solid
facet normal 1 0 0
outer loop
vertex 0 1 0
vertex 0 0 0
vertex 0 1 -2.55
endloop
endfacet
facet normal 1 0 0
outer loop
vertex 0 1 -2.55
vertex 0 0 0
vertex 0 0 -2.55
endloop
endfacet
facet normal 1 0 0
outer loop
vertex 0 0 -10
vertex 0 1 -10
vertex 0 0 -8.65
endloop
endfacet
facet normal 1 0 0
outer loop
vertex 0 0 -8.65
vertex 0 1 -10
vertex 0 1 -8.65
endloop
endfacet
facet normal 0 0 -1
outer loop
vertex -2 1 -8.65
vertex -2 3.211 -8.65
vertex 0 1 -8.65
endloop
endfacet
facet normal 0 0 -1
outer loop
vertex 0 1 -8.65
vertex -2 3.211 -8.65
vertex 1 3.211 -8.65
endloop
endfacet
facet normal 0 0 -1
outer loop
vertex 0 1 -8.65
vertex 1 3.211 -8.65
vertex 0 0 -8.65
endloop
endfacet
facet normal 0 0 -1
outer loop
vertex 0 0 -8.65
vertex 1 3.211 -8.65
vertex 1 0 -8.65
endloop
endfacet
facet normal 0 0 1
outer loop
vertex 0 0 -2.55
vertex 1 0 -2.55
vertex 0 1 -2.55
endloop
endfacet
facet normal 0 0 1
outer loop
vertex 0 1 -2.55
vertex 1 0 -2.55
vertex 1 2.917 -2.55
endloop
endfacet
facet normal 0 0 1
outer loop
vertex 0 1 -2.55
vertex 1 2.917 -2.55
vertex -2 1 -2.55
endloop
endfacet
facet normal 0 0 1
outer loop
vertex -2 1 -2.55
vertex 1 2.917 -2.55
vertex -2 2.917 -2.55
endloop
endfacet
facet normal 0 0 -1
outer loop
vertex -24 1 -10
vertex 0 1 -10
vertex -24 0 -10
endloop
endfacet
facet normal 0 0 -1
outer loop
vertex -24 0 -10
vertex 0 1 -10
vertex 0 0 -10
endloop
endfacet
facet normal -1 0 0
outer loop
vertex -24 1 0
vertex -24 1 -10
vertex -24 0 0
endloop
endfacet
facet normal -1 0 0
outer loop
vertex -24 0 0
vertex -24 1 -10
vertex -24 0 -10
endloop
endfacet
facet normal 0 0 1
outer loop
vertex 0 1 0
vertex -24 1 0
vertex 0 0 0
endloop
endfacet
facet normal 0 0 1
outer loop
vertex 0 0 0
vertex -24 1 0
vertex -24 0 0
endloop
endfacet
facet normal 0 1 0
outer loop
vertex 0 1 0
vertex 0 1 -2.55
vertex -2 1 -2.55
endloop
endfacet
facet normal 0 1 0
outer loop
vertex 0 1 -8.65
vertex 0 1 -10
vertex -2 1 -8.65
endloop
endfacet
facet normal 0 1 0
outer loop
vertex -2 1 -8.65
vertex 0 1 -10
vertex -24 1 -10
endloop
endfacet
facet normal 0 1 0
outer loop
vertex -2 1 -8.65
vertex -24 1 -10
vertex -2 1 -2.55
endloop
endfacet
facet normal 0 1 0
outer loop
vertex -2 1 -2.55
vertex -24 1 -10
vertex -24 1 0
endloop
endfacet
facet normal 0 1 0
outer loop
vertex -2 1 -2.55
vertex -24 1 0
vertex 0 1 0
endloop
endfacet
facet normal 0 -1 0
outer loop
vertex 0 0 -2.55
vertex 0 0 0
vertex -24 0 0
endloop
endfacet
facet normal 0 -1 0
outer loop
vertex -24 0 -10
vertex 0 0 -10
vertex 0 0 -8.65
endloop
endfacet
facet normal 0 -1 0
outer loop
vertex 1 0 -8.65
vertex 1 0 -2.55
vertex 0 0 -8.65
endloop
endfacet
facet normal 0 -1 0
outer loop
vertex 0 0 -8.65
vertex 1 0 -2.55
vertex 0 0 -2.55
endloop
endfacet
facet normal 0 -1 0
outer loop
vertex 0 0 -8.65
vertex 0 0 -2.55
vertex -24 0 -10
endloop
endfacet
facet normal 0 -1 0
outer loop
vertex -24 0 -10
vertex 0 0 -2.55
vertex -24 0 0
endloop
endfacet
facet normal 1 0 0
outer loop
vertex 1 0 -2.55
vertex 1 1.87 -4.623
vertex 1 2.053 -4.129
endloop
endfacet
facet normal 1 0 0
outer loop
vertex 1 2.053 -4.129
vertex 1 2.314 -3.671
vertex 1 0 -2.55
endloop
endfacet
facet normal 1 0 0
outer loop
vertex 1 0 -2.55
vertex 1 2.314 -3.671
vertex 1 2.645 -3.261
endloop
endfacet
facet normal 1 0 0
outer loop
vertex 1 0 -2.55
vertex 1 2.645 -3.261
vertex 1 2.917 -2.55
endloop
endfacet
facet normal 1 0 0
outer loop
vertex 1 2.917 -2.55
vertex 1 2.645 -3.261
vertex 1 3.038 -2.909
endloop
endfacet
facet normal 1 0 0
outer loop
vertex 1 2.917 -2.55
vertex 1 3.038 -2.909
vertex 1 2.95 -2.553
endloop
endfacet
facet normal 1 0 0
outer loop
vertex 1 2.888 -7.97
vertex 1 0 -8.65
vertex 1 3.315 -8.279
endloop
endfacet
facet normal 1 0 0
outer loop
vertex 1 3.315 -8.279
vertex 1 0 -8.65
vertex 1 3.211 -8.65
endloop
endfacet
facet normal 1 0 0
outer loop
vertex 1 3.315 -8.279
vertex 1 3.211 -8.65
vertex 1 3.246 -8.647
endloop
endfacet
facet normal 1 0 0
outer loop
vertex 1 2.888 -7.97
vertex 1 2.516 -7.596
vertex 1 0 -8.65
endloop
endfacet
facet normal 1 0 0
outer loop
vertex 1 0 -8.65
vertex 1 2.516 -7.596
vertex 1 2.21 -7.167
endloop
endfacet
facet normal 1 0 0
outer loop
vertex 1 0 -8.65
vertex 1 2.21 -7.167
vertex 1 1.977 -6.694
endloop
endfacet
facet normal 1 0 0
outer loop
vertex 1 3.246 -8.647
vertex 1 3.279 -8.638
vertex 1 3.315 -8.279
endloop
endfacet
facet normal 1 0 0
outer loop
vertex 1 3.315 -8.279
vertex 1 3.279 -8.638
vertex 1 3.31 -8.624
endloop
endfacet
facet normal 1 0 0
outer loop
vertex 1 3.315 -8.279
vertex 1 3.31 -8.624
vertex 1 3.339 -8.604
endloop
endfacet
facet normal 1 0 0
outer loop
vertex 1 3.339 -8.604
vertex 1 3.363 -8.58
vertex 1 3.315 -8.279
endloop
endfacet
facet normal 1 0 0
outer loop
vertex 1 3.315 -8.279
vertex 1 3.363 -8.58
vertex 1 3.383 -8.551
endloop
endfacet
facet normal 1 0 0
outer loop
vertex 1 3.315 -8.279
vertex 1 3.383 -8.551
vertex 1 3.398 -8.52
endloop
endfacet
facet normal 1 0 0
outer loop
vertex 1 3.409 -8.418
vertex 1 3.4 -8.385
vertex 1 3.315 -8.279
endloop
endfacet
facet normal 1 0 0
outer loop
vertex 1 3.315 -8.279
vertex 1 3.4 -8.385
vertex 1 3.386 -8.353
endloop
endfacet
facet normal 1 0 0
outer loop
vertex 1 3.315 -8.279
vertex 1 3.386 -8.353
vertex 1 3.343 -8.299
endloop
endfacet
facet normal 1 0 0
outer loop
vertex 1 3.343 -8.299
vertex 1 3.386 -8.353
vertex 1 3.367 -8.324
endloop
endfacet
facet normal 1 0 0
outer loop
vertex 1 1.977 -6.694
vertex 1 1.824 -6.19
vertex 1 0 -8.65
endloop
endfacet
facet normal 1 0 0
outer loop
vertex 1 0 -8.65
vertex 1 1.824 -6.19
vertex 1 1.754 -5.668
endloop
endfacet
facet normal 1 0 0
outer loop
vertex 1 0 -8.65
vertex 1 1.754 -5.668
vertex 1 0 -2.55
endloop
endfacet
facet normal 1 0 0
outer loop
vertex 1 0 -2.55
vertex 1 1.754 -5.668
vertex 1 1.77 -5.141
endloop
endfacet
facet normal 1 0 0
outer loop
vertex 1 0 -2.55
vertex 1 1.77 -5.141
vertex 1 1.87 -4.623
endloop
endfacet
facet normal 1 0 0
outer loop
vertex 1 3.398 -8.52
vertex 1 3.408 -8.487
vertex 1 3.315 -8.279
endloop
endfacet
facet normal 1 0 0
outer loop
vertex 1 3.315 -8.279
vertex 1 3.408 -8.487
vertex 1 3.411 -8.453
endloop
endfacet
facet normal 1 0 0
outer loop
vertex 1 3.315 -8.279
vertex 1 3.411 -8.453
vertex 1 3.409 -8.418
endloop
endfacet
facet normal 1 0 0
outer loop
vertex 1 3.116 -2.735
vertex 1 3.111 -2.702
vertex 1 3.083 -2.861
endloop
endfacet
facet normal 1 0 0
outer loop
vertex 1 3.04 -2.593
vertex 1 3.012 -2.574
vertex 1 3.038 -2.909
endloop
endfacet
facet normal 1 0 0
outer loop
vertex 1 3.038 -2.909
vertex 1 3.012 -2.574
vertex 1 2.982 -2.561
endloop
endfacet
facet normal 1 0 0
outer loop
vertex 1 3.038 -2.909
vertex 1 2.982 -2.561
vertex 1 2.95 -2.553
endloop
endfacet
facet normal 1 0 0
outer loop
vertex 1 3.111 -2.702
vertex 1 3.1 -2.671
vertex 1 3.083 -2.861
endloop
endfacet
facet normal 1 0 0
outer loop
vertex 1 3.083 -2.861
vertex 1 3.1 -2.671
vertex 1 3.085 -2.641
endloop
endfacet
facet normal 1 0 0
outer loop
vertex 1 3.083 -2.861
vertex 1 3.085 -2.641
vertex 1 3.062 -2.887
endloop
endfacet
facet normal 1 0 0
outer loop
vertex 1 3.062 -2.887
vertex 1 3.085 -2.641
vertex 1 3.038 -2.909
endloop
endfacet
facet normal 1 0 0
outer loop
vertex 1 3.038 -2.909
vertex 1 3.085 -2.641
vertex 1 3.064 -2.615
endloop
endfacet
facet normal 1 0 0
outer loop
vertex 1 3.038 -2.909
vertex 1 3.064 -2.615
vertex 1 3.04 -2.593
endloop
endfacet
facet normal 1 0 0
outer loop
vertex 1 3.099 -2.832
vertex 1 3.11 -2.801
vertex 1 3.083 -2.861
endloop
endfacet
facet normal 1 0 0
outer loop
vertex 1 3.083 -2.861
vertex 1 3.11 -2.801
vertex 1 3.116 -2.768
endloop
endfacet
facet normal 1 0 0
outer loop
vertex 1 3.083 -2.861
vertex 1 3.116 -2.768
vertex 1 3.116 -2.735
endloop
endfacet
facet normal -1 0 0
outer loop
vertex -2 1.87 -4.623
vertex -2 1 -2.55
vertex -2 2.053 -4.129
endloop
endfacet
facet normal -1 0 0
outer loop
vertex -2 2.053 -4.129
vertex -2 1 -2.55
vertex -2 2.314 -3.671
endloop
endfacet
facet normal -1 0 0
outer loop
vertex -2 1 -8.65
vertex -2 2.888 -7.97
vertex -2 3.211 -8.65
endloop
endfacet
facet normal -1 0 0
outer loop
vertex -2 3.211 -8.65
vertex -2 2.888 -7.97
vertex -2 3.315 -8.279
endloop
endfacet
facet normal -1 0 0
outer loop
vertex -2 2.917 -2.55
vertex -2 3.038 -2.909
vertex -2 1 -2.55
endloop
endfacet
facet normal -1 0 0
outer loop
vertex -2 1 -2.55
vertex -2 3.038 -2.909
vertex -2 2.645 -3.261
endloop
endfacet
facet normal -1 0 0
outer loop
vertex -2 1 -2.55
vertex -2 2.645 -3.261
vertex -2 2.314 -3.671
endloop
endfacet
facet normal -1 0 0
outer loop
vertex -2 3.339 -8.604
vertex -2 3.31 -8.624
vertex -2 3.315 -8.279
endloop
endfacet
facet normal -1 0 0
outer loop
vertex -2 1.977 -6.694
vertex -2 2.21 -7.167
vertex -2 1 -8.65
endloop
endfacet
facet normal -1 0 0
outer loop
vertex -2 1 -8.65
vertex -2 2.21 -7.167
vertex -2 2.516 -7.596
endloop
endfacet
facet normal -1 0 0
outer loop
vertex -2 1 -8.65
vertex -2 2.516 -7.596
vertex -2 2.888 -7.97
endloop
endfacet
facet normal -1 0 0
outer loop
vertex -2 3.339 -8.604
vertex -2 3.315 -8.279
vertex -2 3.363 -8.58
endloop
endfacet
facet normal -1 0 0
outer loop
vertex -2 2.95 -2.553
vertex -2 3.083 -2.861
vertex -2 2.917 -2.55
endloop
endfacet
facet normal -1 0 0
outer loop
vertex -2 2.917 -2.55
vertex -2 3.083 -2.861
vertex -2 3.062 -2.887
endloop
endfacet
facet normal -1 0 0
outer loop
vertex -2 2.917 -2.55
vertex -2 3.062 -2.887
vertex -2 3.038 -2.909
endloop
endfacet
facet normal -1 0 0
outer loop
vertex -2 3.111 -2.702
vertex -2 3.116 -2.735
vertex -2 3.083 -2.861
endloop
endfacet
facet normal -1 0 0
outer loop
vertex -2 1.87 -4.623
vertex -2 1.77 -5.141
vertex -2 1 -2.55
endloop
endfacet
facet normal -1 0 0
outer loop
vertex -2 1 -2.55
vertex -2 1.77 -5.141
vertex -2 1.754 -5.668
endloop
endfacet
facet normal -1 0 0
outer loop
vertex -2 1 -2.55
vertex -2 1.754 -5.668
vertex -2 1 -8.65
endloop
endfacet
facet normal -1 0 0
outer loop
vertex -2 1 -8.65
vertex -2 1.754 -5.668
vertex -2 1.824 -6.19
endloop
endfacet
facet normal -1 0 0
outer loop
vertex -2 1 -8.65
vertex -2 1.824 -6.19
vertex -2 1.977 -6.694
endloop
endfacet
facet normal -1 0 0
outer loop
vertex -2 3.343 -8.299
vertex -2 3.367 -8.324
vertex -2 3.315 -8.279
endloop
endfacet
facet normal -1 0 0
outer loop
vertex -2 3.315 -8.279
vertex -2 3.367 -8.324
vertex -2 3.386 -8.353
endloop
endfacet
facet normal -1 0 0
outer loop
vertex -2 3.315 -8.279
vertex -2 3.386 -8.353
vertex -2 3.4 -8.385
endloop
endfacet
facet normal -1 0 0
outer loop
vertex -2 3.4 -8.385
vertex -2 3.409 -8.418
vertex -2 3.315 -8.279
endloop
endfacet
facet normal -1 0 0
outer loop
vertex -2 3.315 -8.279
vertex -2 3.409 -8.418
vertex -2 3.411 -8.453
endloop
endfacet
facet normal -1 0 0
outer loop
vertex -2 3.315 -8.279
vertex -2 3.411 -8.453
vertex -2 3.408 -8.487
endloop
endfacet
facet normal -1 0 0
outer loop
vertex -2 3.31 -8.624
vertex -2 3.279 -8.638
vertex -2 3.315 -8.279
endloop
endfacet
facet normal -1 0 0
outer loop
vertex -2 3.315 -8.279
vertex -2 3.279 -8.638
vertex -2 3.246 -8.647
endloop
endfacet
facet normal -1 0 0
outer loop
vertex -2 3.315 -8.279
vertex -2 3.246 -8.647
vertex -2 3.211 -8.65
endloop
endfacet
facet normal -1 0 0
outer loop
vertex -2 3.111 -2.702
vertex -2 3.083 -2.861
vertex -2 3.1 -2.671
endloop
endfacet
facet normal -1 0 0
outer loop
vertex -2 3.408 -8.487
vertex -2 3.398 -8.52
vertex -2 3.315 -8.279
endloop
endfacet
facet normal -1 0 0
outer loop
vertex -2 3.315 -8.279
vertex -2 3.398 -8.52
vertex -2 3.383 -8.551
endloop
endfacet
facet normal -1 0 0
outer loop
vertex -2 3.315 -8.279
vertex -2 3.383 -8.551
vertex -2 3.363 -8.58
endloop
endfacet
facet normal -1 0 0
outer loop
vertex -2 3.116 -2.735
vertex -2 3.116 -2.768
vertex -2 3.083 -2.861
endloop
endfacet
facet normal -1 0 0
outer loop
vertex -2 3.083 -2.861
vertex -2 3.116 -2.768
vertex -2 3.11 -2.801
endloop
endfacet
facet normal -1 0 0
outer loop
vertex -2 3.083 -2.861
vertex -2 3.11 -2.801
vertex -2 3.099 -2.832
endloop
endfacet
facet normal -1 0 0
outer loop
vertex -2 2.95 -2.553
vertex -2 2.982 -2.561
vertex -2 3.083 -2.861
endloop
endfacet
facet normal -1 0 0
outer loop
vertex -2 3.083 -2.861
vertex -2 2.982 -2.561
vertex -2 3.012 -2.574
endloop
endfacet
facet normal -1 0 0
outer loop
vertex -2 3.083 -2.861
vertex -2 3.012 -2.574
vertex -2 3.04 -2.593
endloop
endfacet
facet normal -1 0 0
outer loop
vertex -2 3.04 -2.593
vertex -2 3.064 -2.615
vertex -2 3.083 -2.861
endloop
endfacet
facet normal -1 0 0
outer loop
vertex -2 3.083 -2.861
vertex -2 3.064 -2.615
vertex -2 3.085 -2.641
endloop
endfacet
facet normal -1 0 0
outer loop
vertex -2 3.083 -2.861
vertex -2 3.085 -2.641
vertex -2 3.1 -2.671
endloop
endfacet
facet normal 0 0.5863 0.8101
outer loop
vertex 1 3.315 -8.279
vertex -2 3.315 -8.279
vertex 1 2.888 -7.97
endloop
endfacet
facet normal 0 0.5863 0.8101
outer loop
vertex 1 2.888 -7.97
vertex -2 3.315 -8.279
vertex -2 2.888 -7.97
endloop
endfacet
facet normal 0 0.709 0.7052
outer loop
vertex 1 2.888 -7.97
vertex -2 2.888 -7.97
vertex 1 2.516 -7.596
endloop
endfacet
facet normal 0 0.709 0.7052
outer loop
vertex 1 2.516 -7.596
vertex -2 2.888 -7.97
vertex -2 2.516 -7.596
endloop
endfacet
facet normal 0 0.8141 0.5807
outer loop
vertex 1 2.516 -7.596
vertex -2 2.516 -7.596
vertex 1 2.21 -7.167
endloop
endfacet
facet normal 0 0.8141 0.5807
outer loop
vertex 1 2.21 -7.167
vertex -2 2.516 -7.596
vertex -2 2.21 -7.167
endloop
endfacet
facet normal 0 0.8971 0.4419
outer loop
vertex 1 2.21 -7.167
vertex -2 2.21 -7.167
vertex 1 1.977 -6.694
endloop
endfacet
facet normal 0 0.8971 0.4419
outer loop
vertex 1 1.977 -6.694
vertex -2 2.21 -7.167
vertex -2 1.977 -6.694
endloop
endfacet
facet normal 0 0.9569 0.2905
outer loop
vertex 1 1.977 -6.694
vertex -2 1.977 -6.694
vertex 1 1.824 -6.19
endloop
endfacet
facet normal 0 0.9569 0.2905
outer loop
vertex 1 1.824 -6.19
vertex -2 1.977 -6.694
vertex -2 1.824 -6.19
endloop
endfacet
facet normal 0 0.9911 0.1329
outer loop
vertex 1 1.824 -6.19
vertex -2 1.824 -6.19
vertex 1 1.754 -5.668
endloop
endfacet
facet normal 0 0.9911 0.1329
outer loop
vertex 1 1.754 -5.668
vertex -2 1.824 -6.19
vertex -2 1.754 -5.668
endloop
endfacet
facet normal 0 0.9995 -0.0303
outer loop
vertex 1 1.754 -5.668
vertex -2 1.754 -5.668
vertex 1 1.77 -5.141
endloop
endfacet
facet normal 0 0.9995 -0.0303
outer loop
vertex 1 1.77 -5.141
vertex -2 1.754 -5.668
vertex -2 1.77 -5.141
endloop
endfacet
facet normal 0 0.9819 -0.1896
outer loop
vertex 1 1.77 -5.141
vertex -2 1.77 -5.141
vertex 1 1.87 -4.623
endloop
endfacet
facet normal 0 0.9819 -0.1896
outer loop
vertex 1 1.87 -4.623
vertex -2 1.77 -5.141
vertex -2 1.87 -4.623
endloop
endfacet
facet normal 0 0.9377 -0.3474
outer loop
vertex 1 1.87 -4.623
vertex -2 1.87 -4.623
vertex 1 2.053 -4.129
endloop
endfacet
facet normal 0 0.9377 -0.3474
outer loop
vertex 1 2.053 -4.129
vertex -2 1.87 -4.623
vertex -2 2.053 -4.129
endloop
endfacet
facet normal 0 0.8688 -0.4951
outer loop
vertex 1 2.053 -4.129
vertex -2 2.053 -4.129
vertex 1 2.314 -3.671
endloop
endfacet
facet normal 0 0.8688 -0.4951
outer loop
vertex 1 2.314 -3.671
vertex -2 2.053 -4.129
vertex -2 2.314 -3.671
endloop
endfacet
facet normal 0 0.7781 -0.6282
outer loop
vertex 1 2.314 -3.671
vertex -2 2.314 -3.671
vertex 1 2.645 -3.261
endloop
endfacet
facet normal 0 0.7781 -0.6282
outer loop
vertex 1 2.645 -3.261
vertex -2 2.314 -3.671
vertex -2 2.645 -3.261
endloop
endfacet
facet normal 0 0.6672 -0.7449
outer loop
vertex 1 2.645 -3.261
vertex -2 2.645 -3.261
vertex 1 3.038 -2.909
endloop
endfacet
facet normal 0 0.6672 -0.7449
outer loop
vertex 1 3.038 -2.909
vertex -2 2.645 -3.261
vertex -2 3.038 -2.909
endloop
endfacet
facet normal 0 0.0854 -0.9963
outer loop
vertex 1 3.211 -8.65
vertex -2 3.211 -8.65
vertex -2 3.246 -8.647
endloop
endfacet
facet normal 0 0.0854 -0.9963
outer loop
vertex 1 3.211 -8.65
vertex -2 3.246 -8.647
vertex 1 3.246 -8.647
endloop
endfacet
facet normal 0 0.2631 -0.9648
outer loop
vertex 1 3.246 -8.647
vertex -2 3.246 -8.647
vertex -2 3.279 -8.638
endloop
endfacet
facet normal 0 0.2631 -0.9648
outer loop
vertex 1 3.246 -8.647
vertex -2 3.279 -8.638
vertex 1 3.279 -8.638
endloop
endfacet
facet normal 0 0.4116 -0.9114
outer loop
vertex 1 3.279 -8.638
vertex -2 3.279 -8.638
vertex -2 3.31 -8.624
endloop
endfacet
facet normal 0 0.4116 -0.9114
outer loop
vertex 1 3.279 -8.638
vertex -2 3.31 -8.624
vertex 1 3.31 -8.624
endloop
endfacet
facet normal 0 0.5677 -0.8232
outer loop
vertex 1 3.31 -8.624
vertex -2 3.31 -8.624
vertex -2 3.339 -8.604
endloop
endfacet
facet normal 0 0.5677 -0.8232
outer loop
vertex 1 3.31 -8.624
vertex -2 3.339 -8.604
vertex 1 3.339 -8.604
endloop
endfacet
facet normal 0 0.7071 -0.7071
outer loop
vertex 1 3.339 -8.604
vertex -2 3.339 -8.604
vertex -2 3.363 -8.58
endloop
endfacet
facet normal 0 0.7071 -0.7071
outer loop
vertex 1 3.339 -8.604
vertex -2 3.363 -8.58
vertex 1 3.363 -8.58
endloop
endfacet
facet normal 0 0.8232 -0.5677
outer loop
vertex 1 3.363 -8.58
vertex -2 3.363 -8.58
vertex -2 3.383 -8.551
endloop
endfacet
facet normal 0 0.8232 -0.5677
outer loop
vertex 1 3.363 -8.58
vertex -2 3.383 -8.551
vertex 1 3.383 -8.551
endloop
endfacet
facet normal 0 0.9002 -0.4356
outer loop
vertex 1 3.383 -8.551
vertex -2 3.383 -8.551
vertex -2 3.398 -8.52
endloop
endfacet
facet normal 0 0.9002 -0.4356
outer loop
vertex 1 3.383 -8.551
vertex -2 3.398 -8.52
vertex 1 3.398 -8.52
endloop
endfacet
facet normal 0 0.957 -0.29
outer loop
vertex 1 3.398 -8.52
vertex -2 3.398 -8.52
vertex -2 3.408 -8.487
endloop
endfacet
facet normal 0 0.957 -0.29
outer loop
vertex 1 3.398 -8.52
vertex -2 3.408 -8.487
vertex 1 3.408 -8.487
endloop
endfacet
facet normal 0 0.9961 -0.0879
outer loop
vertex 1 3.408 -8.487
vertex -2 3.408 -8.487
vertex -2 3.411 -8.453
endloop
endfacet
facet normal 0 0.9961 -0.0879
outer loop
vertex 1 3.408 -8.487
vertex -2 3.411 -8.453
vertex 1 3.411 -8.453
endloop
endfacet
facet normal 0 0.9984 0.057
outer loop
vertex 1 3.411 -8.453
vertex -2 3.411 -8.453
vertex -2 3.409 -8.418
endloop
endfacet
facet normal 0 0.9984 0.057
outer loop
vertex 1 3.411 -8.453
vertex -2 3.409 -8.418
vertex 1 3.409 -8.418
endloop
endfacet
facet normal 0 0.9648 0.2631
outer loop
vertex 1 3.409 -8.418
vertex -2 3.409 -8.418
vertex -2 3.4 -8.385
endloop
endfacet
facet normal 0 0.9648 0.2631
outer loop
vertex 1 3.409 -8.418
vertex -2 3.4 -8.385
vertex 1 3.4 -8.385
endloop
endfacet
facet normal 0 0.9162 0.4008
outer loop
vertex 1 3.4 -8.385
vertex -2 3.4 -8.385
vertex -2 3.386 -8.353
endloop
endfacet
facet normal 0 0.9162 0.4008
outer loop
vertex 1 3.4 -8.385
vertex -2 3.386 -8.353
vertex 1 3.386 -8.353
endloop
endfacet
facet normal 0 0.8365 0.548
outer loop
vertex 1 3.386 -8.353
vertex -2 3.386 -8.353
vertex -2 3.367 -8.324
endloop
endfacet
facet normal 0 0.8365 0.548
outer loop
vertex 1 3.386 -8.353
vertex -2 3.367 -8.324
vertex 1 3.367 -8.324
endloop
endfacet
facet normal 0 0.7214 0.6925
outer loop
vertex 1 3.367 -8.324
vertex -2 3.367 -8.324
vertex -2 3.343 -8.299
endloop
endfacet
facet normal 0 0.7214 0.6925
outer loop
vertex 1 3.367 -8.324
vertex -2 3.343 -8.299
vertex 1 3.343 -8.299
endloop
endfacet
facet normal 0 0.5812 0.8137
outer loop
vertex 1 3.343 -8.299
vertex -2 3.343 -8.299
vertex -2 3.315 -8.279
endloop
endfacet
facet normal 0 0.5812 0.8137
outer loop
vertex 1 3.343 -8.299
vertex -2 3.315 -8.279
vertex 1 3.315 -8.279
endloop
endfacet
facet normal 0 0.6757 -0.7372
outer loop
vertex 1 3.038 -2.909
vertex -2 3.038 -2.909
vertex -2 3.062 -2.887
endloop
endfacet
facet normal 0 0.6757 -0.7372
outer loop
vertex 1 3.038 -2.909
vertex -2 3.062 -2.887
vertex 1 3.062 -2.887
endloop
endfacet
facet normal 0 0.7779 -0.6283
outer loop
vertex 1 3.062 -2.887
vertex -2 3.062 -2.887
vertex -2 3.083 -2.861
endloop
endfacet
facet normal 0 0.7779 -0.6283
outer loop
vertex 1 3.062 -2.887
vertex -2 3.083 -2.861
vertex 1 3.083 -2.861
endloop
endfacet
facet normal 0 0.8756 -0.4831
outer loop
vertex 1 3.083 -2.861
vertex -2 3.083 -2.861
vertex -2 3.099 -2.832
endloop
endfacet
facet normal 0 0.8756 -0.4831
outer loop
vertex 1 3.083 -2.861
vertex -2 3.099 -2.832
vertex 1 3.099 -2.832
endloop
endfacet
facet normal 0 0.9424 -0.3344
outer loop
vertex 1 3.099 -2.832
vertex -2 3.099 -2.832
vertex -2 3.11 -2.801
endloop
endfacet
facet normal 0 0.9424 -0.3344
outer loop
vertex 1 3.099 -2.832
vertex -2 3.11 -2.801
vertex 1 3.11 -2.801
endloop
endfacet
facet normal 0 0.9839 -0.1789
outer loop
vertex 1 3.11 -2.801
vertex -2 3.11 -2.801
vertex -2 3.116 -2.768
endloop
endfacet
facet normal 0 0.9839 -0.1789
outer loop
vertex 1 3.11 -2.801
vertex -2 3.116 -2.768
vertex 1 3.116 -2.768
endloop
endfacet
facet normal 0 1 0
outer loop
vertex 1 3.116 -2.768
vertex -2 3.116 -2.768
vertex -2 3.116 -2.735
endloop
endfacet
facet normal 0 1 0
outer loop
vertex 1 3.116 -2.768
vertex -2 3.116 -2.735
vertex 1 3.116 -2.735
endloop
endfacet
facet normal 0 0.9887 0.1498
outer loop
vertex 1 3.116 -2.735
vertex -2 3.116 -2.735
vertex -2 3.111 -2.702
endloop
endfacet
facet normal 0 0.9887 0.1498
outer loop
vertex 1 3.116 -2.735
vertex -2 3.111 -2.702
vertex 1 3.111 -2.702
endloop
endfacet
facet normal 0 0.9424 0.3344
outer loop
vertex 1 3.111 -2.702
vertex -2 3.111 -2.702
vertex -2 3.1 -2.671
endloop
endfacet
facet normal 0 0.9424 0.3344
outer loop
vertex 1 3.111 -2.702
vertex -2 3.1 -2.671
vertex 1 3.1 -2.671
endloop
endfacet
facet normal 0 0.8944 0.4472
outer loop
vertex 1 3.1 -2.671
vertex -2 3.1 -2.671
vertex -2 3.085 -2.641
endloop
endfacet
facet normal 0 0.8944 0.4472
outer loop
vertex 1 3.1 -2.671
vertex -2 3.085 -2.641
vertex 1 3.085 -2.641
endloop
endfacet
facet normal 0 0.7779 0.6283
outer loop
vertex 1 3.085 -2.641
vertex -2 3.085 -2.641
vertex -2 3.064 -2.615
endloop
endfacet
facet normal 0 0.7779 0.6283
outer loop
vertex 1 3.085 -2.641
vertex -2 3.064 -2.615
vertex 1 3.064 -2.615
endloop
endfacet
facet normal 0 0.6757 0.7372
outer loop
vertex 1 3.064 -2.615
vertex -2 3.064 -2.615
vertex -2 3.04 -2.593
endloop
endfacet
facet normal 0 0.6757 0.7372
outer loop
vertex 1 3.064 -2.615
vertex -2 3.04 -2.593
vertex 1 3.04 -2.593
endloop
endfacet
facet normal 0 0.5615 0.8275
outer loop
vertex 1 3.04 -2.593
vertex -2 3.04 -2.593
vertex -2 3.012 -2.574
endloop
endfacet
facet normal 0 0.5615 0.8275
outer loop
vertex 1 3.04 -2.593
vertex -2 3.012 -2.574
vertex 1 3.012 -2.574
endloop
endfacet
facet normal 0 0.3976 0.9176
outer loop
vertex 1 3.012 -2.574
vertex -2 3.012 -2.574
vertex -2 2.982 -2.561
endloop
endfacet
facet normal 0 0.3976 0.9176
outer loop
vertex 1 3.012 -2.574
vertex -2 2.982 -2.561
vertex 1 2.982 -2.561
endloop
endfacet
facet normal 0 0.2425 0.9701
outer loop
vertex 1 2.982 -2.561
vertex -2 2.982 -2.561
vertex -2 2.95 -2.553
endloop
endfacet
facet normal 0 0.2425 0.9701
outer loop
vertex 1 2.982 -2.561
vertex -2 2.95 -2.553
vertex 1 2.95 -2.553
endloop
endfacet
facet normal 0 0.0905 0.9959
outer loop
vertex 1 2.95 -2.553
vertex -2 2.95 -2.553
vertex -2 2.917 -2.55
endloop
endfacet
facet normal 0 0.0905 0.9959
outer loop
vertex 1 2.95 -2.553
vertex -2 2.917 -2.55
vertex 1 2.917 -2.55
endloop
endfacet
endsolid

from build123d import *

# Parameters (mm, degrees)
SKETCH1_W           = 24
SKETCH1_H           = 10
BOSS_EXTRUDE1_DEPTH = 1
SKETCH2_W           = 3
SKETCH2_H           = 6.1
BOSS_EXTRUDE2_DEPTH = 3.25
SKETCH3_R           = 3.25
CUT_EXTRUDE1_DEPTH  = 3
FILLET1_R           = 0.2
SKETCH4_W           = 1
SKETCH4_H           = 6.1
BOSS_EXTRUDE3_DEPTH = 1


with BuildPart() as part:
    # Sketch1 → Boss-Extrude1 (new body)
    with BuildSketch(Plane(origin=(0, 0, 0), x_dir=(1, 0, 0), z_dir=(0, 1, 0))):
        with Locations((-12, 5)):
            Rectangle(SKETCH1_W, SKETCH1_H)
    extrude(amount=BOSS_EXTRUDE1_DEPTH)

    # Sketch2 → Boss-Extrude2 (add)
    with BuildSketch(Plane(origin=(0, 1, 0), x_dir=(1, 0, 0), z_dir=(0, 1, 0))):
        with Locations((-0.5, 5.6)):
            Rectangle(SKETCH2_W, SKETCH2_H)
    extrude(amount=BOSS_EXTRUDE2_DEPTH)

    # Sketch3 → Cut-Extrude1 (cut)
    with BuildSketch(Plane(origin=(-2, 0, 0), x_dir=(0, 0, -1), z_dir=(1, 0, 0))):
        with Locations((5.5, 5)):
            Circle(SKETCH3_R)
    extrude(amount=CUT_EXTRUDE1_DEPTH, mode=Mode.SUBTRACT)

    # Fillet1
    fillet1_edges = [part.edges().sort_by_distance(p)[0] for p in [
        (-0.5, 3.63618183, -2.55),
        (-0.5, 4.2, -8.65),
    ]]
    fillet(fillet1_edges, radius=FILLET1_R)

    # Sketch4 → Boss-Extrude3 (add)
    with BuildSketch(Plane.XZ.offset(-1)):
        with Locations((0.5, -5.6)):
            Rectangle(SKETCH4_W, SKETCH4_H)
    extrude(amount=BOSS_EXTRUDE3_DEPTH)


solid = part.part
